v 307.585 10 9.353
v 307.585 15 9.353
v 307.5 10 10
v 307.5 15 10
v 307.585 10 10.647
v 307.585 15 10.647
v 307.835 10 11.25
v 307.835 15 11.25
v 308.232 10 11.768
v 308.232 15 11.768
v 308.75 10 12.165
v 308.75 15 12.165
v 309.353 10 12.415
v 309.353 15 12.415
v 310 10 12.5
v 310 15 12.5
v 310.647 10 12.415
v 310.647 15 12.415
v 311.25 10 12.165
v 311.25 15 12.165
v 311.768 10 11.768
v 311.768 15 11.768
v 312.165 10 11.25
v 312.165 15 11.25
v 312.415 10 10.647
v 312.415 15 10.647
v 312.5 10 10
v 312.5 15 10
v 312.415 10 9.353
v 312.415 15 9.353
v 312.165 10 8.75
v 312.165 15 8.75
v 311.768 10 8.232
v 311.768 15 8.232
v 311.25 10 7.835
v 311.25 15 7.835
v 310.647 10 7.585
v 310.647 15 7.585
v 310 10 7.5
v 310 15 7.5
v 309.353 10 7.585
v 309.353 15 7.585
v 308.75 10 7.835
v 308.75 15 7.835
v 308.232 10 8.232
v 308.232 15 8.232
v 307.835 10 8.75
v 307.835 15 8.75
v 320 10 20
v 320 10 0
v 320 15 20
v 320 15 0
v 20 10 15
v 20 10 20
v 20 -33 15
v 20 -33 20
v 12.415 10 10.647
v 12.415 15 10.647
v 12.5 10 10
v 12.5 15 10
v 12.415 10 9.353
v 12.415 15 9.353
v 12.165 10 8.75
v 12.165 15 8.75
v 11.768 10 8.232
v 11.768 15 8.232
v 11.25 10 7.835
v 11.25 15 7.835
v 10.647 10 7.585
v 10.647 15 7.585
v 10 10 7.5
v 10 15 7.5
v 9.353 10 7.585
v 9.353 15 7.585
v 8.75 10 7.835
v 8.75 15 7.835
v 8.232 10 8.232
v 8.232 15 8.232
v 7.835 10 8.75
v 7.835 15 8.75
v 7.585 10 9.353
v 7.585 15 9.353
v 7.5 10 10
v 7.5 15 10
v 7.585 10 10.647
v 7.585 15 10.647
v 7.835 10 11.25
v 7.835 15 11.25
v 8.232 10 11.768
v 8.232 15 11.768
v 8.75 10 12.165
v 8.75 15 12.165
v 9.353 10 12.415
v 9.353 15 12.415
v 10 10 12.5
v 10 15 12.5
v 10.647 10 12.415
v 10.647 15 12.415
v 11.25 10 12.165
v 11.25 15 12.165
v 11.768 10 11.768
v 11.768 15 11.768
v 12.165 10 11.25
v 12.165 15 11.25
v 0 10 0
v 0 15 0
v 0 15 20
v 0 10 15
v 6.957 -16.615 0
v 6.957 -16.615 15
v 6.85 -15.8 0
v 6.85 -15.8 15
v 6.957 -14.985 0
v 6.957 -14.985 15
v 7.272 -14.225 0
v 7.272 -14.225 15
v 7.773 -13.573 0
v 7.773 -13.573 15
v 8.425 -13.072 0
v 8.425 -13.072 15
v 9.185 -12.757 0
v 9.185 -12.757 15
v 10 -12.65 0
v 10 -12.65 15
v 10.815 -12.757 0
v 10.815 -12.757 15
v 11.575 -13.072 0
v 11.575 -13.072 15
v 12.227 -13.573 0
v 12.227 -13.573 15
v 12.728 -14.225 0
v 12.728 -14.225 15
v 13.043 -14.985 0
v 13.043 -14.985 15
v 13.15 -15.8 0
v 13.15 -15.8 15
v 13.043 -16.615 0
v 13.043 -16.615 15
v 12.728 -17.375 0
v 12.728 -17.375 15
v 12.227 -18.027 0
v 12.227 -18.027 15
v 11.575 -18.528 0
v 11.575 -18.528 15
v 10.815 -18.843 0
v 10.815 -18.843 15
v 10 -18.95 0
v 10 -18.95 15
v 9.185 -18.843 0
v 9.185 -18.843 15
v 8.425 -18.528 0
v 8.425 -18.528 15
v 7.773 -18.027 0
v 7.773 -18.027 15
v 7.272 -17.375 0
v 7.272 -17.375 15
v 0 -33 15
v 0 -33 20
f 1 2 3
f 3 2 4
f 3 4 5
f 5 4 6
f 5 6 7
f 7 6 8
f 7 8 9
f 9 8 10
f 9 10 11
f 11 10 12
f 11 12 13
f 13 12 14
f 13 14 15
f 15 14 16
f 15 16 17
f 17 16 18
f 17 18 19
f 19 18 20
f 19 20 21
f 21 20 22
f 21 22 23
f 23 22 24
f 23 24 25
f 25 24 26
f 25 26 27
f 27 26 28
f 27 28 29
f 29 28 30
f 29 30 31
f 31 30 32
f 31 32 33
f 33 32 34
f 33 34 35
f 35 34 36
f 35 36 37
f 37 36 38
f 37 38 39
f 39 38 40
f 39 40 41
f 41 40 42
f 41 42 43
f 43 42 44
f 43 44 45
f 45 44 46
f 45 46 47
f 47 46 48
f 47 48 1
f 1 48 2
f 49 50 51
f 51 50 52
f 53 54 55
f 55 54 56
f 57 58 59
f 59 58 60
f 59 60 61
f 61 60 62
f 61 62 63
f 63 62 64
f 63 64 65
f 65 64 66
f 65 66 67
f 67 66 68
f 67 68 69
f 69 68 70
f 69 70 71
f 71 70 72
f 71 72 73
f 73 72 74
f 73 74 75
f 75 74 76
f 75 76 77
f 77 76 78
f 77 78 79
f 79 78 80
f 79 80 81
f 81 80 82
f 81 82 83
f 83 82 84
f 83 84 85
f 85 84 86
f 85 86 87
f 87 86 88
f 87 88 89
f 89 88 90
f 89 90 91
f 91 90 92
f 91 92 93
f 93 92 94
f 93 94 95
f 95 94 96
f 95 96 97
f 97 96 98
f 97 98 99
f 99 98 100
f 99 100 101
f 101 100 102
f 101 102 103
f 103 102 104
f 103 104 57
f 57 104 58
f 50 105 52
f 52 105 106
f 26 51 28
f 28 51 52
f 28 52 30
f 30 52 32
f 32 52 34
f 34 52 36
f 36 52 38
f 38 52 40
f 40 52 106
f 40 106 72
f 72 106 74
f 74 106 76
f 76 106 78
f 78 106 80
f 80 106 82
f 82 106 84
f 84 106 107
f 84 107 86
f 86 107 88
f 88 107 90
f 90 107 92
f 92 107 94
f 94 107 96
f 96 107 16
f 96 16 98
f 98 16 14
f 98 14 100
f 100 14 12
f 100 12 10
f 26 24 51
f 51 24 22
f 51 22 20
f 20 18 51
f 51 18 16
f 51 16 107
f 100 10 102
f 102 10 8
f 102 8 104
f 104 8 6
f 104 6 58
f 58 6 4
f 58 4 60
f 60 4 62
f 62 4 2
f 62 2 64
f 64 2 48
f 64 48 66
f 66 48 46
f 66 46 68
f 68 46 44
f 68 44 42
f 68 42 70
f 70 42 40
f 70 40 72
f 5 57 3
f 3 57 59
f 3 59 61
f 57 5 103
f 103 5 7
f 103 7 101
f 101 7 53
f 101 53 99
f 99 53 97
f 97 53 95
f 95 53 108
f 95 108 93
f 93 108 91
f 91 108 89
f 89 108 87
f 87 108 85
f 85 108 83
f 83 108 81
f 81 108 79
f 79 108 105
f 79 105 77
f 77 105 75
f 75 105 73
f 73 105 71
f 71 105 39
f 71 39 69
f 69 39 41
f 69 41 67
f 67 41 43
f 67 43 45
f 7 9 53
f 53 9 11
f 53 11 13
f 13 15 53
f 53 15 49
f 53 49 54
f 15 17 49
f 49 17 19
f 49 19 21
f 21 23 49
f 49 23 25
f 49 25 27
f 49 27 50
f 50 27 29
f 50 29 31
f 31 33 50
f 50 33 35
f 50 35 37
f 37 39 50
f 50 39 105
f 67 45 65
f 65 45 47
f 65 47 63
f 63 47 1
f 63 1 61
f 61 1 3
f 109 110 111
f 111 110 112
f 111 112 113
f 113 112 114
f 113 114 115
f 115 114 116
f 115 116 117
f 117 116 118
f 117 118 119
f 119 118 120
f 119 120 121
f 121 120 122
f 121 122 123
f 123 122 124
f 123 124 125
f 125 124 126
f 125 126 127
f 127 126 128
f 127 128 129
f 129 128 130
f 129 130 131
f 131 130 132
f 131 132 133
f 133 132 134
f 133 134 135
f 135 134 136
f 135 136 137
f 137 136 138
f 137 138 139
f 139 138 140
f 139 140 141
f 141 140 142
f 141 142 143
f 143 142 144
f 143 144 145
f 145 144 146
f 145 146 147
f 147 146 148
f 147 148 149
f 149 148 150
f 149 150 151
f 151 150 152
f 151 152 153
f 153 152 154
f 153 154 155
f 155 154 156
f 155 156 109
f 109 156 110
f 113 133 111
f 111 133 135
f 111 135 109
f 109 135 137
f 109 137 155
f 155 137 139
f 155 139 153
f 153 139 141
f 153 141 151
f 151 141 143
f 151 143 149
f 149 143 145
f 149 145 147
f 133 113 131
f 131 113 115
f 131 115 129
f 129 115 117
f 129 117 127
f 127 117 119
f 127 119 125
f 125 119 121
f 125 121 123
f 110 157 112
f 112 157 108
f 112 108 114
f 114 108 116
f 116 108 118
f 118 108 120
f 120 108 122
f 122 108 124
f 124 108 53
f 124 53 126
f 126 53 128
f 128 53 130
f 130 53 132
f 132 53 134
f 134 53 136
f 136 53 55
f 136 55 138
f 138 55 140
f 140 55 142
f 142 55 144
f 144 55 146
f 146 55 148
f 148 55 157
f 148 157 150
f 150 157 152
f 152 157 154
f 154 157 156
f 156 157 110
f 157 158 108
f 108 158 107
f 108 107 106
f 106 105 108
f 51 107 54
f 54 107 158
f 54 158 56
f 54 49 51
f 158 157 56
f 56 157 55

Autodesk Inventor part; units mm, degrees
ref_plane "Plano de trabajo1" through (0, 10, 0) normal (0, 1, 0) x (1, 0, 0)
sketch "Boceto3" plane through (0, 10, 0) normal (0, 1, 0) x (1, 0, 0)
  line L0 (20, -20) -> (0, -20) projected
  line L1 (0, 0) -> (20, 0) projected
  line L2 (0, -20) -> (20, -20)
  line L3 (20, -20) -> (20, 0)
  line L4 (20, 0) -> (0, 0)
  line L5 (0, 0) -> (0, -20)
extrude "Extrusión3" add sketch "Boceto3" along normal blind 5
ref_plane "Plano de trabajo4" through (0, -3, 0) normal (0, -1, 0) x (1, 0, 0)
sketch "Boceto8" plane through (0, -3, 0) normal (0, -1, 0) x (1, 0, 0)
  line L0 (0, 0) -> (0, 20) projected
  line L1 (0, 20) -> (20, 20) projected
  line L2 (0, 15) -> (20, 15)
  line L3 (20, 15) -> (20, 20)
  line L4 (20, 20) -> (0, 20)
  line L5 (0, 20) -> (0, 15)
  dimension "d25" = 5
extrude "Extrusión8" add sketch "Boceto8" along normal blind 30
ref_plane "Plano de trabajo5" through (20, -33, 15) normal (0, 0, -1) x (-1, 0, 0)
sketch "Boceto10" plane through (20, -33, 15) normal (0, 0, -1) x (-1, 0, 0)
  circle A0 centre (10, 17.2) radius 3.15
  line L0 (0, 33) -> (20, 33) projected
  line L1 (0, 32) -> (0, 0) projected
  point P0 (15.75, 33)
  point P1 (10, 33)
  dimension "d35" = 6.3
  dimension "d36" = 15.8
  dimension "d37" = 10
extrude "Extrusión9" add sketch "Boceto10" along normal blind 15
ref_plane "Plano de trabajo2" through (20, 10, 20) normal (1, 0, 0) x (0, 0, -1)
sketch "Boceto13" plane through (0, -3, 0) normal (0, 1, 0) x (1, 0, 0)
  line L0 (0, -20) -> (0, -15) projected
  line L1 (20, -15) -> (20, -20) projected
  line L2 (0, -15) -> (20, -15)
  line L3 (20, -15) -> (20, -20)
  line L4 (20, -20) -> (0, -20)
  line L5 (0, -20) -> (0, -15)
  point P0 (0, 0)
extrude "Extrusión12" add sketch "Boceto13" along normal blind 13
sketch "Boceto15" plane through (0, 15, 0) normal (0, 1, 0) x (1, 0, 0)
  circle A0 centre (10, -10) radius 2.5
  line L0 (0, 0) -> (0, -20) projected
  line L1 (0, -20) -> (20, -20) projected
  point P0 (320, -20)
  dimension "d58" = 5
  dimension "d59" = 10
  dimension "d60" = 10
extrude "Extrusión14" cut sketch "Boceto15" against normal blind 5
thread "Rosca6" size "M5x0.8" class "6H" standard "ANSI Metric M Profile" full length
sketch "Boceto20" plane through (20, 10, 0) normal (1, 0, 0) x (0, 0, -1)
  line L0 (-20, 5) -> (0, 5) projected
  line L1 (-20, 5) -> (0, 5)
  line L2 (0, 5) -> (0, 0)
  line L3 (0, 0) -> (-20, 0)
  line L4 (-20, 0) -> (-20, 5)
  point P0 (0, -10)
extrude "Extrusión18" add sketch "Boceto20" along normal blind 300
sketch "Boceto21" plane through (0, 15, 0) normal (0, 1, 0) x (1, 0, 0)
  circle A0 centre (310, -10) radius 2.5
  line L0 (0, 0) -> (320, 0) projected
  line L1 (320, 0) -> (320, -20) projected
  dimension "d84" = 5
  dimension "d85" = 10
  dimension "d86" = 10
extrude "Extrusión19" cut sketch "Boceto21" against normal blind 300
thread "Rosca8" size "M5x0.8" class "6H" standard "ANSI Metric M Profile" full length
properties part number "Ejes Base - C15_3DPrint"
